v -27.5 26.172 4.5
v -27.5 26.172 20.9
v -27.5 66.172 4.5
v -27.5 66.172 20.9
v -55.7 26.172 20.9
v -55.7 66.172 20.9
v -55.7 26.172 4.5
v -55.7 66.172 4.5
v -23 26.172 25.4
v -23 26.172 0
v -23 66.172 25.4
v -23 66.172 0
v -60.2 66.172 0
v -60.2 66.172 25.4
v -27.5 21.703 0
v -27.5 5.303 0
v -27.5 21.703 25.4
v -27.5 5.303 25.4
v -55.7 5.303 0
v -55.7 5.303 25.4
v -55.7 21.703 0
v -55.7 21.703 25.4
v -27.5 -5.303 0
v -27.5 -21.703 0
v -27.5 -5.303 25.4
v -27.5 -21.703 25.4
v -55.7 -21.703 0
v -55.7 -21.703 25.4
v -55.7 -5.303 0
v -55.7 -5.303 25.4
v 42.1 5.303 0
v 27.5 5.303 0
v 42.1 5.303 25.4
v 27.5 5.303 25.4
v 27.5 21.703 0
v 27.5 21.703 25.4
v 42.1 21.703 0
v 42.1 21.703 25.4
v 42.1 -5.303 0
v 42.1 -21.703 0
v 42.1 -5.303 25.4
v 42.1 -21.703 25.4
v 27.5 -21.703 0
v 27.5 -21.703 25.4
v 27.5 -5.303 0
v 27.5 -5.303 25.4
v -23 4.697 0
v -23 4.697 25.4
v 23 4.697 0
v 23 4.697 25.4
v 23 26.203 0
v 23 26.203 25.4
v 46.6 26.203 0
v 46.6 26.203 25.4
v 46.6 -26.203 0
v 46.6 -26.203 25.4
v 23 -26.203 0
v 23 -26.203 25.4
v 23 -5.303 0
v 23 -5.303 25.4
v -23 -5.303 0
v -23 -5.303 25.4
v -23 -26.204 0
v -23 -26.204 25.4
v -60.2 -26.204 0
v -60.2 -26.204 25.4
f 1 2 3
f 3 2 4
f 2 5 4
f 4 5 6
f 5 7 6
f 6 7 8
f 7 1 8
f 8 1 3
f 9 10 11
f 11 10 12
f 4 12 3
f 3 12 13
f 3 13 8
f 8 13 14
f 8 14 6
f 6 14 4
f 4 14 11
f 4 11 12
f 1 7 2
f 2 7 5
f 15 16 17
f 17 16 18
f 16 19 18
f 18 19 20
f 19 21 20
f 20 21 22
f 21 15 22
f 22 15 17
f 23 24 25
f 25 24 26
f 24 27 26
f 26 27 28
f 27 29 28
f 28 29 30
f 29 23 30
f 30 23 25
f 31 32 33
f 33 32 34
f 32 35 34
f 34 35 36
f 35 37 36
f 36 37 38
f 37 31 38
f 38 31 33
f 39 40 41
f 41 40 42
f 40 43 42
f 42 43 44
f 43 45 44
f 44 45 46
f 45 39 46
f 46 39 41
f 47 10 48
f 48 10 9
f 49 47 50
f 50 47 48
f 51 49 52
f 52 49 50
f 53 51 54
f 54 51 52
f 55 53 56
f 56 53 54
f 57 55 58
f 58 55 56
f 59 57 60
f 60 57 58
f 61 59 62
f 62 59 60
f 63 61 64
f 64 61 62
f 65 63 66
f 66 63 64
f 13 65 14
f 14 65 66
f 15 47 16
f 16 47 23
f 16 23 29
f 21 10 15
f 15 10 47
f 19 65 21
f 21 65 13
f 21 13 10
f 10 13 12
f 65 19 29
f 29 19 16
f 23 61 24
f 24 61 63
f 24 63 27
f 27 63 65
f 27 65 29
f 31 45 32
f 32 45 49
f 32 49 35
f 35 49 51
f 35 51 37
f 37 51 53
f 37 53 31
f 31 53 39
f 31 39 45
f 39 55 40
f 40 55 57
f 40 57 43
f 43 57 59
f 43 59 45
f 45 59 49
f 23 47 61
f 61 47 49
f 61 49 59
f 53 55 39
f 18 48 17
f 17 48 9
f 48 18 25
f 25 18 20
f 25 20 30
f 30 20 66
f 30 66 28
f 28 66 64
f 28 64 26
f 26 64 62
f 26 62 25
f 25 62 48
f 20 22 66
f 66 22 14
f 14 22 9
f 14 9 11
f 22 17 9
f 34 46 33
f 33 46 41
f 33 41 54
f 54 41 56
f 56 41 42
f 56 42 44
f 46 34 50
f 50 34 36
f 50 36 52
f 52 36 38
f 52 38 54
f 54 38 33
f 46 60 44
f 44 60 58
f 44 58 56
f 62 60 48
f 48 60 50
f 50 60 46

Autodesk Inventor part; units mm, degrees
ref_plane "YZ Plane" through (0, 0, 0) normal (1, 0, 0) x (0, 1, 0)
ref_plane "XZ Plane" through (0, 0, 0) normal (0, 1, 0) x (-1, 0, 0)
ref_plane "XY Plane" through (0, 0, 0) normal (0, 0, 1) x (1, 0, 0)
sketch "Sketch1" plane through (0, 0, 0) normal (0, 0, 1) x (1, 0, 0)
  line L0 (-60.2002, 26.1718) -> (-60.2002, -26.2038) construction
  line L1 (-60.2002, -26.2038) -> (-23, -26.2038) construction
  line L2 (-23, -26.2038) -> (-23, -5.3034) construction
  line L3 (23, -5.3034) -> (-23, -5.3034) construction
  line L4 (23, -5.3034) -> (23, -26.2034) construction
  line L5 (23, -26.2034) -> (46.6, -26.2034) construction
  line L6 (46.6, -26.2034) -> (46.6, 26.2034) construction
  line L7 (23, 26.2034) -> (46.6, 26.2034) construction
  line L8 (23, 11.4966) -> (23, 26.2034) construction
  line L9 (-8.3, 4.6966) -> (8.3, 4.6966) construction
  line L10 (-23.0002, 26.1718) -> (-23.0002, 11.4966) construction
  line L11 (-23.0002, 26.1718) -> (-60.2002, 26.1718) construction
  line L12 (-27.5, -5.3034) -> (-55.7, -5.3034) construction
  line L13 (-27.5, -5.3034) -> (-27.5, -21.7034) construction
  line L14 (-27.5, -21.7034) -> (-55.7, -21.7034) construction
  line L15 (-55.7, -21.7034) -> (-55.7, -5.3034) construction
  line L16 (42.1, -5.3034) -> (27.5, -5.3034) construction
  line L17 (42.1, -5.3034) -> (42.1, -21.7034) construction
  line L18 (42.1, -21.7034) -> (27.5, -21.7034) construction
  line L19 (27.5, -21.7034) -> (27.5, -5.3034) construction
  line L20 (42.1, 5.3034) -> (42.1, 21.7034) construction
  line L21 (27.5, 5.3034) -> (42.1, 5.3034) construction
  line L22 (27.5, 21.7034) -> (27.5, 5.3034) construction
  line L23 (42.1, 21.7034) -> (27.5, 21.7034) construction
  line L24 (-55.7, 21.7034) -> (-55.7, 5.3034) construction
  line L25 (-27.5, 21.7034) -> (-55.7, 21.7034) construction
  line L26 (-27.5, 5.3034) -> (-27.5, 21.7034) construction
  line L27 (-55.7, 5.3034) -> (-27.5, 5.3034) construction
  line L28 (-60.2002, 26.1718) -> (-23, 26.1718)
  line L29 (-23, -26.2038) -> (-60.2002, -26.2038)
  line L30 (-60.2002, -26.2038) -> (-60.2002, 26.1718)
  line L31 (-55.7, 21.7034) -> (-27.5, 21.7034)
  line L32 (-27.5, 21.7034) -> (-27.5, 5.3034)
  line L33 (-27.5, 5.3034) -> (-55.7, 5.3034)
  line L34 (-55.7, 5.3034) -> (-55.7, 21.7034)
  line L35 (-55.7, -5.3034) -> (-27.5, -5.3034)
  line L36 (-27.5, -5.3034) -> (-27.5, -21.7034)
  line L37 (-27.5, -21.7034) -> (-55.7, -21.7034)
  line L38 (-55.7, -21.7034) -> (-55.7, -5.3034)
  line L39 (-23, 4.6966) -> (23, 4.6966)
  line L40 (23, 26.2034) -> (46.6, 26.2034)
  line L41 (46.6, 26.2034) -> (46.6, -26.2034)
  line L42 (46.6, -26.2034) -> (23, -26.2034)
  line L43 (27.5, 21.7034) -> (42.1, 21.7034)
  line L44 (42.1, 21.7034) -> (42.1, 5.3034)
  line L45 (42.1, 5.3034) -> (27.5, 5.3034)
  line L46 (27.5, 5.3034) -> (27.5, 21.7034)
  line L47 (27.5, -5.3034) -> (42.1, -5.3034)
  line L48 (42.1, -5.3034) -> (42.1, -21.7034)
  line L49 (42.1, -21.7034) -> (27.5, -21.7034)
  line L50 (27.5, -21.7034) -> (27.5, -5.3034)
  line L51 (-23, -5.3034) -> (23, -5.3034)
  line L52 (-23, 26.1718) -> (-23, 4.6966)
  line L53 (-23, -5.3034) -> (-23, -26.2038)
  line L54 (23, -26.2034) -> (23, -5.3034)
  line L55 (23, 4.6966) -> (23, 26.2034)
  point P0 (0, 0)
  point P1 (0, 0)
  point P2 (0, 0)
extrude "Extrusion1" add sketch "Sketch1" along normal blind 25.4
sketch "Sketch2" plane through (-60.2002, 26.1718, 0) normal (0, 1, 0) x (1, 0, 0)
  line L0 (4.5, -4.5) -> (32.7, -4.5)
  line L1 (32.7, -4.5) -> (32.7, -20.9)
  line L2 (32.7, -20.9) -> (4.5, -20.9)
  line L3 (4.5, -20.9) -> (4.5, -4.5)
  line L4 (37.2, 0) -> (0, 0)
  line L5 (0, 0) -> (0, -25.4)
  line L6 (0, -25.4) -> (37.2, -25.4)
  line L7 (37.2, -25.4) -> (37.2, 0)
  line L8 (0, 0) -> (37.2002, 0) construction
  dimension "d2" = 4.5
extrude "Extrusion2" add sketch "Sketch2" along normal blind 40
properties part number "mid_front_Chasis"
